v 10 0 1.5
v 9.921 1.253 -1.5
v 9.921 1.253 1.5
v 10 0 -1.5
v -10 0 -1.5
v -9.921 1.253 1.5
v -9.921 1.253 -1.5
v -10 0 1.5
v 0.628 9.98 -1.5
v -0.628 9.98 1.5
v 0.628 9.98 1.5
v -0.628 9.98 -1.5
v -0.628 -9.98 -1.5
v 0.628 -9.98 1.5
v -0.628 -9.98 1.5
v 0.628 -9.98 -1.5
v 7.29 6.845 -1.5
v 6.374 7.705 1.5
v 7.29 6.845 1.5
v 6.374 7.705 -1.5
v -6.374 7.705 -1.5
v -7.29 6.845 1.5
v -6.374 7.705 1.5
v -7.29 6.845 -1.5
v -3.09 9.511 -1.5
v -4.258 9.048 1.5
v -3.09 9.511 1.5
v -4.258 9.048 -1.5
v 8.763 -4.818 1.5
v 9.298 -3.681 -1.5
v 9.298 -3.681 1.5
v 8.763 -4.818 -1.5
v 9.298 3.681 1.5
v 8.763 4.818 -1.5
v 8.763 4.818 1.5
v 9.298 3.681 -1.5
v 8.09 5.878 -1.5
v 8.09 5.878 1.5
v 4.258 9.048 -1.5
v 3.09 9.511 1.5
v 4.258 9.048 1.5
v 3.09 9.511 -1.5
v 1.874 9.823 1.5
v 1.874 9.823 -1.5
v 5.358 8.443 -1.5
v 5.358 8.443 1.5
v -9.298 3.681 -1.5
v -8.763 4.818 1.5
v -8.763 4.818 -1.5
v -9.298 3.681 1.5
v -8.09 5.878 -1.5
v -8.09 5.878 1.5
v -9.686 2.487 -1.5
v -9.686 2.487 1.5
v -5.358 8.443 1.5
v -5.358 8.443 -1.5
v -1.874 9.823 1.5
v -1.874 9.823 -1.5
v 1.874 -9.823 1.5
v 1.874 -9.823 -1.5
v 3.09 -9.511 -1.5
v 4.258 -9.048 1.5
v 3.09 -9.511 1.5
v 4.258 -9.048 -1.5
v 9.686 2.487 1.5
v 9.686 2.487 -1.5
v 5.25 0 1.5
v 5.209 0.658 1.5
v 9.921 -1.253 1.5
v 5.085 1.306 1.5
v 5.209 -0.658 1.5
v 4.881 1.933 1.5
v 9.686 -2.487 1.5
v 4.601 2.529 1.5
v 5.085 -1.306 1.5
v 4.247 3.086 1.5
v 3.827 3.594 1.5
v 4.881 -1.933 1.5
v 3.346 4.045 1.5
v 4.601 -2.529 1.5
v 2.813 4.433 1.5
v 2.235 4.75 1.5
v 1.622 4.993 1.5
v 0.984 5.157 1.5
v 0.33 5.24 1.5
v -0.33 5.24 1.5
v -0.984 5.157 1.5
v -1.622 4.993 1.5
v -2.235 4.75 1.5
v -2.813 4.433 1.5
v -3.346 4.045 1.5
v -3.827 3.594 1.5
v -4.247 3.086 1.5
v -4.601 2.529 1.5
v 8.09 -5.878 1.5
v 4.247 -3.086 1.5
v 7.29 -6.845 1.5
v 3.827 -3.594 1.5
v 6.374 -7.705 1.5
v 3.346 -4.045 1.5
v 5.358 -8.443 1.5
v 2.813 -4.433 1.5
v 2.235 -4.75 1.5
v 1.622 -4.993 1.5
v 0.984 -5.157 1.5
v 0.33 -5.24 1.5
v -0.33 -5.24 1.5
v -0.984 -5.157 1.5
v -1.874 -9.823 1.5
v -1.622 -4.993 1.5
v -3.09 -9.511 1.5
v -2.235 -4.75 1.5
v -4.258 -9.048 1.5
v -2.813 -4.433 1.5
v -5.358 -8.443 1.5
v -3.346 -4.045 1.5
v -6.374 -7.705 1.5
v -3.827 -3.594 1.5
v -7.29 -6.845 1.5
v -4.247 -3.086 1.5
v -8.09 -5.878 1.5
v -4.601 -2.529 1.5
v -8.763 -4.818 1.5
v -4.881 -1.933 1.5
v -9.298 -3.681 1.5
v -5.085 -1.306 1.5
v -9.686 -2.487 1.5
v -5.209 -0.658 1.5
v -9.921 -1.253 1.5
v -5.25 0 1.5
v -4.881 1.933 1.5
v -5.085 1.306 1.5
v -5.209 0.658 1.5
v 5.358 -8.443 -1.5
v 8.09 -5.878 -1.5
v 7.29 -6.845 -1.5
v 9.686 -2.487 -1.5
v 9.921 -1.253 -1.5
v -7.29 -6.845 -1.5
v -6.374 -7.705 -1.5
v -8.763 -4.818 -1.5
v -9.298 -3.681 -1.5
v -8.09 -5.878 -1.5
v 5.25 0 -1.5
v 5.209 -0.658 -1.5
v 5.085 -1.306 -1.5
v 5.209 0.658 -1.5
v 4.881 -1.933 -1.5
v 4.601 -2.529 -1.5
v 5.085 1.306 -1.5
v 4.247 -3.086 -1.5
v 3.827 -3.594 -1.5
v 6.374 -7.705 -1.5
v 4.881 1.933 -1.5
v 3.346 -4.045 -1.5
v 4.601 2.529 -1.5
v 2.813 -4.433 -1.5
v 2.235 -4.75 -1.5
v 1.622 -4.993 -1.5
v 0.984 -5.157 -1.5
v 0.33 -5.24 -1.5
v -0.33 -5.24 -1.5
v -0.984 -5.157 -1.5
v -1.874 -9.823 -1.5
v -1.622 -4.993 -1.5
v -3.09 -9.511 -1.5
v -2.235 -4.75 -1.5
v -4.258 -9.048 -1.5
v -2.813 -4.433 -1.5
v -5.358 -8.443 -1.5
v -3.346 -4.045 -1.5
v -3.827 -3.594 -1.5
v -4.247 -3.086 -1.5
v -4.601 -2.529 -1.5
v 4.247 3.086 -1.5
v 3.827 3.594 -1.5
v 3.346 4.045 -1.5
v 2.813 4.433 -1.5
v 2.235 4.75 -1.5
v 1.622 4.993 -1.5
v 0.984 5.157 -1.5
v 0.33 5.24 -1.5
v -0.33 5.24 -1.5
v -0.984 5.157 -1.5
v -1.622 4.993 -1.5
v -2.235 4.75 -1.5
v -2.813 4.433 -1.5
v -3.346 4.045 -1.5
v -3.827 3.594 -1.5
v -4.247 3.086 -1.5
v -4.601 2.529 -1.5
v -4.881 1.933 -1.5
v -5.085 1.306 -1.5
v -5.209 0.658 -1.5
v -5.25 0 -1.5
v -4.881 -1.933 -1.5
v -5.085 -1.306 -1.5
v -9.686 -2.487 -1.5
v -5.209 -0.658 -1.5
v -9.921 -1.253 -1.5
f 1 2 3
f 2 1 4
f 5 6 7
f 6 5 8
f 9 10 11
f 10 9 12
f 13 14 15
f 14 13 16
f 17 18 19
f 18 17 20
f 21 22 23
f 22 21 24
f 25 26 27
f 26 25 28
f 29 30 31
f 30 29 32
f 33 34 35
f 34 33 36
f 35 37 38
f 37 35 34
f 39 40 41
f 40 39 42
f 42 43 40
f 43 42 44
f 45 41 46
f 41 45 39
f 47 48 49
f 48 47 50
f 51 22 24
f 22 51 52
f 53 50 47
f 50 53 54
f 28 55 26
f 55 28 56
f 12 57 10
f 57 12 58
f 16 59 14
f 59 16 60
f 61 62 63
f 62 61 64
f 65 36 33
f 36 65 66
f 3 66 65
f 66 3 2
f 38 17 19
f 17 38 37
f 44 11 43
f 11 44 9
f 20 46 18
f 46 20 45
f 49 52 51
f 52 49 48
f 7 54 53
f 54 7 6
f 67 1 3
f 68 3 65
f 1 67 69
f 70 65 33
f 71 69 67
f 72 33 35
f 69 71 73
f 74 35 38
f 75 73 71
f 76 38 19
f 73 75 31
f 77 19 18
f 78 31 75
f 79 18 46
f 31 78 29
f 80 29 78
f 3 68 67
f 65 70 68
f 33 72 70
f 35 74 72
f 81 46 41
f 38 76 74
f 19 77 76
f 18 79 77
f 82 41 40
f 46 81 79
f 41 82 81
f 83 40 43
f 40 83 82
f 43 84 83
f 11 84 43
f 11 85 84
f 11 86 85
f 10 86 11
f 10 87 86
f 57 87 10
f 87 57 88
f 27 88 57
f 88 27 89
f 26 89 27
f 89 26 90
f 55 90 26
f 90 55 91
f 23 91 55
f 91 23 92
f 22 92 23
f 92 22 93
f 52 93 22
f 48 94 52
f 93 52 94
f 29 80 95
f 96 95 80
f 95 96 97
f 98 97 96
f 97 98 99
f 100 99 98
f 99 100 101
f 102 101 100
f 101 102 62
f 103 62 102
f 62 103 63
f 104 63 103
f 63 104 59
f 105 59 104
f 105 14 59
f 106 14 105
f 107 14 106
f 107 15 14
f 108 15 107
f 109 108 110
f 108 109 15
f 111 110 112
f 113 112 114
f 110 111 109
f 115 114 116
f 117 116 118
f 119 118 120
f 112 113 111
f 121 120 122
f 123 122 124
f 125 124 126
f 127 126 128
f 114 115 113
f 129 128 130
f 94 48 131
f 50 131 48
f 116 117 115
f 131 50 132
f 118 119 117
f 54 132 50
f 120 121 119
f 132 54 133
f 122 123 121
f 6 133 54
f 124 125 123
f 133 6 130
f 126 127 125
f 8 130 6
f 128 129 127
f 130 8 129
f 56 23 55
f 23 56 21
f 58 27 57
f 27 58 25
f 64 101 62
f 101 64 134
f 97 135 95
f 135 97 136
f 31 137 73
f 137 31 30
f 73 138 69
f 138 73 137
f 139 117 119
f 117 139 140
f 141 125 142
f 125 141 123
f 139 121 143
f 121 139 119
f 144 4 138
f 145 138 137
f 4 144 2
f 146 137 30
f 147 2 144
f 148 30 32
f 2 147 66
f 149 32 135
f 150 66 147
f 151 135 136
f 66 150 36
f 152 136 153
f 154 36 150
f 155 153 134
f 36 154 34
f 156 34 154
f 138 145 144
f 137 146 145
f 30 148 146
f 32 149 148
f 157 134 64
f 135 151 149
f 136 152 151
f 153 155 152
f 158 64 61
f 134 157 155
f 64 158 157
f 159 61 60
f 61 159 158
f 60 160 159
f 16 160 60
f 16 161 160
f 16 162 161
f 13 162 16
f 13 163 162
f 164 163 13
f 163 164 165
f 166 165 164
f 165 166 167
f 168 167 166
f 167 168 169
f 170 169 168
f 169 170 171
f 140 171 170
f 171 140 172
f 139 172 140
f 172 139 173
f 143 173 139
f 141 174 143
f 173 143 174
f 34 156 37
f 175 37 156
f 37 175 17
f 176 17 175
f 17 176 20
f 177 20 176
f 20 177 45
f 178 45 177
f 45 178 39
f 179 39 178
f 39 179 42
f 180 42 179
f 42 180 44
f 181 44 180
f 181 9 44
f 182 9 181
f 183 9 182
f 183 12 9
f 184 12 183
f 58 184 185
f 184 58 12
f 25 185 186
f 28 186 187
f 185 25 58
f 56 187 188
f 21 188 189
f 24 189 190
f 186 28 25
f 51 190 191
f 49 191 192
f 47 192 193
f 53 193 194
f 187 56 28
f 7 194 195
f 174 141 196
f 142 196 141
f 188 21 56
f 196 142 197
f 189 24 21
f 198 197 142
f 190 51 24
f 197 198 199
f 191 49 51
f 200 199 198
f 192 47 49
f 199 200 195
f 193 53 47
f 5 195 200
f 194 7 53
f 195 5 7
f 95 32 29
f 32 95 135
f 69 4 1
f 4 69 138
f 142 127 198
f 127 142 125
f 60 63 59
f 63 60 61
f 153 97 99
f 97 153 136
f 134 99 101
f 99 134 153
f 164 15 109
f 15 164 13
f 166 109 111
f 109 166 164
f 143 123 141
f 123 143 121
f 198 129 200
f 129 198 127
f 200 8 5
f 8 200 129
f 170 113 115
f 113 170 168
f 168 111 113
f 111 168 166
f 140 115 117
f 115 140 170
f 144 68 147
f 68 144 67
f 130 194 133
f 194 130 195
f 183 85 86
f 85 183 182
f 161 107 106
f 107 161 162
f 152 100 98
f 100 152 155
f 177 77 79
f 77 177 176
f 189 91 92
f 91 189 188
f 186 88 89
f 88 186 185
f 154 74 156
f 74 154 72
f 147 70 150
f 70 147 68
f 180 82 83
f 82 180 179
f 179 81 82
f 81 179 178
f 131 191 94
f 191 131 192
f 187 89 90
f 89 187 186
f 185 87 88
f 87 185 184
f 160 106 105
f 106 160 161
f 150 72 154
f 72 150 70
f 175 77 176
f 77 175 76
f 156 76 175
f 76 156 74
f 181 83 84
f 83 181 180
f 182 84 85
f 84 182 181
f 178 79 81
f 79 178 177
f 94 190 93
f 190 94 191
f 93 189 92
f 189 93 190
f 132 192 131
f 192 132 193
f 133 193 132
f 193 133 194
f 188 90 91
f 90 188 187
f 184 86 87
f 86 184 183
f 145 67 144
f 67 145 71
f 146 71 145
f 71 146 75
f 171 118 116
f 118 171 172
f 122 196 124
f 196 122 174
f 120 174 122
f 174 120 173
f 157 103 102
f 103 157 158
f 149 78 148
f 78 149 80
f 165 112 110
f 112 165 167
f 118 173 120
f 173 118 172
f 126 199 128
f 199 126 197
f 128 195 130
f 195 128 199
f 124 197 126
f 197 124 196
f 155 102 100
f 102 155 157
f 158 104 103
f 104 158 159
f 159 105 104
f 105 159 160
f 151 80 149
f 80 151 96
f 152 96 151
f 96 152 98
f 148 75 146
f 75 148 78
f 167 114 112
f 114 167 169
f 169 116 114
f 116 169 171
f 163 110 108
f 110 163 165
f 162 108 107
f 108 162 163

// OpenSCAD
$fn = 50;


difference() {
	union() {
		translate(v = [0, 0, -1.5000000000]) {
			cylinder(h = 3, r = 10.0000000000);
		}
	}
	union() {
		translate(v = [0, 0, -100.0000000000]) {
			cylinder(h = 200, r = 5.2500000000);
		}
	}
}
